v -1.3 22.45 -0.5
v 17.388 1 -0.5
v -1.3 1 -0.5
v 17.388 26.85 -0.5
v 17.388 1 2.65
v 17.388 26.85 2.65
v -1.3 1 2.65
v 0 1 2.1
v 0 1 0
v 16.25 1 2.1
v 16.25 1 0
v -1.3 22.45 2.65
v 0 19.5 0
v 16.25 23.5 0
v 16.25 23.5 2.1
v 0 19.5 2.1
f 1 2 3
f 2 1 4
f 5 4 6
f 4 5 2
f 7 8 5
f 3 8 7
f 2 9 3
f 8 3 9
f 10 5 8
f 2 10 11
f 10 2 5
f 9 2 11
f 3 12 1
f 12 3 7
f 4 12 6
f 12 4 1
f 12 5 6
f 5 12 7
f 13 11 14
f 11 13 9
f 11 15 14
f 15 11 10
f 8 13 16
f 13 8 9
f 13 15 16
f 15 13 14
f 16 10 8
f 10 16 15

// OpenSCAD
clearance = .8;

module blade() {
  linear_extrude(2.1)
  polygon(
    points=[[0,0],[16.25,0],[16.25,23.5],[0,19.5]]
    );
}

difference() {
translate([-1.3,1,-.5])
scale([1.15,1.1,1.5]) blade();

blade();
    
}
